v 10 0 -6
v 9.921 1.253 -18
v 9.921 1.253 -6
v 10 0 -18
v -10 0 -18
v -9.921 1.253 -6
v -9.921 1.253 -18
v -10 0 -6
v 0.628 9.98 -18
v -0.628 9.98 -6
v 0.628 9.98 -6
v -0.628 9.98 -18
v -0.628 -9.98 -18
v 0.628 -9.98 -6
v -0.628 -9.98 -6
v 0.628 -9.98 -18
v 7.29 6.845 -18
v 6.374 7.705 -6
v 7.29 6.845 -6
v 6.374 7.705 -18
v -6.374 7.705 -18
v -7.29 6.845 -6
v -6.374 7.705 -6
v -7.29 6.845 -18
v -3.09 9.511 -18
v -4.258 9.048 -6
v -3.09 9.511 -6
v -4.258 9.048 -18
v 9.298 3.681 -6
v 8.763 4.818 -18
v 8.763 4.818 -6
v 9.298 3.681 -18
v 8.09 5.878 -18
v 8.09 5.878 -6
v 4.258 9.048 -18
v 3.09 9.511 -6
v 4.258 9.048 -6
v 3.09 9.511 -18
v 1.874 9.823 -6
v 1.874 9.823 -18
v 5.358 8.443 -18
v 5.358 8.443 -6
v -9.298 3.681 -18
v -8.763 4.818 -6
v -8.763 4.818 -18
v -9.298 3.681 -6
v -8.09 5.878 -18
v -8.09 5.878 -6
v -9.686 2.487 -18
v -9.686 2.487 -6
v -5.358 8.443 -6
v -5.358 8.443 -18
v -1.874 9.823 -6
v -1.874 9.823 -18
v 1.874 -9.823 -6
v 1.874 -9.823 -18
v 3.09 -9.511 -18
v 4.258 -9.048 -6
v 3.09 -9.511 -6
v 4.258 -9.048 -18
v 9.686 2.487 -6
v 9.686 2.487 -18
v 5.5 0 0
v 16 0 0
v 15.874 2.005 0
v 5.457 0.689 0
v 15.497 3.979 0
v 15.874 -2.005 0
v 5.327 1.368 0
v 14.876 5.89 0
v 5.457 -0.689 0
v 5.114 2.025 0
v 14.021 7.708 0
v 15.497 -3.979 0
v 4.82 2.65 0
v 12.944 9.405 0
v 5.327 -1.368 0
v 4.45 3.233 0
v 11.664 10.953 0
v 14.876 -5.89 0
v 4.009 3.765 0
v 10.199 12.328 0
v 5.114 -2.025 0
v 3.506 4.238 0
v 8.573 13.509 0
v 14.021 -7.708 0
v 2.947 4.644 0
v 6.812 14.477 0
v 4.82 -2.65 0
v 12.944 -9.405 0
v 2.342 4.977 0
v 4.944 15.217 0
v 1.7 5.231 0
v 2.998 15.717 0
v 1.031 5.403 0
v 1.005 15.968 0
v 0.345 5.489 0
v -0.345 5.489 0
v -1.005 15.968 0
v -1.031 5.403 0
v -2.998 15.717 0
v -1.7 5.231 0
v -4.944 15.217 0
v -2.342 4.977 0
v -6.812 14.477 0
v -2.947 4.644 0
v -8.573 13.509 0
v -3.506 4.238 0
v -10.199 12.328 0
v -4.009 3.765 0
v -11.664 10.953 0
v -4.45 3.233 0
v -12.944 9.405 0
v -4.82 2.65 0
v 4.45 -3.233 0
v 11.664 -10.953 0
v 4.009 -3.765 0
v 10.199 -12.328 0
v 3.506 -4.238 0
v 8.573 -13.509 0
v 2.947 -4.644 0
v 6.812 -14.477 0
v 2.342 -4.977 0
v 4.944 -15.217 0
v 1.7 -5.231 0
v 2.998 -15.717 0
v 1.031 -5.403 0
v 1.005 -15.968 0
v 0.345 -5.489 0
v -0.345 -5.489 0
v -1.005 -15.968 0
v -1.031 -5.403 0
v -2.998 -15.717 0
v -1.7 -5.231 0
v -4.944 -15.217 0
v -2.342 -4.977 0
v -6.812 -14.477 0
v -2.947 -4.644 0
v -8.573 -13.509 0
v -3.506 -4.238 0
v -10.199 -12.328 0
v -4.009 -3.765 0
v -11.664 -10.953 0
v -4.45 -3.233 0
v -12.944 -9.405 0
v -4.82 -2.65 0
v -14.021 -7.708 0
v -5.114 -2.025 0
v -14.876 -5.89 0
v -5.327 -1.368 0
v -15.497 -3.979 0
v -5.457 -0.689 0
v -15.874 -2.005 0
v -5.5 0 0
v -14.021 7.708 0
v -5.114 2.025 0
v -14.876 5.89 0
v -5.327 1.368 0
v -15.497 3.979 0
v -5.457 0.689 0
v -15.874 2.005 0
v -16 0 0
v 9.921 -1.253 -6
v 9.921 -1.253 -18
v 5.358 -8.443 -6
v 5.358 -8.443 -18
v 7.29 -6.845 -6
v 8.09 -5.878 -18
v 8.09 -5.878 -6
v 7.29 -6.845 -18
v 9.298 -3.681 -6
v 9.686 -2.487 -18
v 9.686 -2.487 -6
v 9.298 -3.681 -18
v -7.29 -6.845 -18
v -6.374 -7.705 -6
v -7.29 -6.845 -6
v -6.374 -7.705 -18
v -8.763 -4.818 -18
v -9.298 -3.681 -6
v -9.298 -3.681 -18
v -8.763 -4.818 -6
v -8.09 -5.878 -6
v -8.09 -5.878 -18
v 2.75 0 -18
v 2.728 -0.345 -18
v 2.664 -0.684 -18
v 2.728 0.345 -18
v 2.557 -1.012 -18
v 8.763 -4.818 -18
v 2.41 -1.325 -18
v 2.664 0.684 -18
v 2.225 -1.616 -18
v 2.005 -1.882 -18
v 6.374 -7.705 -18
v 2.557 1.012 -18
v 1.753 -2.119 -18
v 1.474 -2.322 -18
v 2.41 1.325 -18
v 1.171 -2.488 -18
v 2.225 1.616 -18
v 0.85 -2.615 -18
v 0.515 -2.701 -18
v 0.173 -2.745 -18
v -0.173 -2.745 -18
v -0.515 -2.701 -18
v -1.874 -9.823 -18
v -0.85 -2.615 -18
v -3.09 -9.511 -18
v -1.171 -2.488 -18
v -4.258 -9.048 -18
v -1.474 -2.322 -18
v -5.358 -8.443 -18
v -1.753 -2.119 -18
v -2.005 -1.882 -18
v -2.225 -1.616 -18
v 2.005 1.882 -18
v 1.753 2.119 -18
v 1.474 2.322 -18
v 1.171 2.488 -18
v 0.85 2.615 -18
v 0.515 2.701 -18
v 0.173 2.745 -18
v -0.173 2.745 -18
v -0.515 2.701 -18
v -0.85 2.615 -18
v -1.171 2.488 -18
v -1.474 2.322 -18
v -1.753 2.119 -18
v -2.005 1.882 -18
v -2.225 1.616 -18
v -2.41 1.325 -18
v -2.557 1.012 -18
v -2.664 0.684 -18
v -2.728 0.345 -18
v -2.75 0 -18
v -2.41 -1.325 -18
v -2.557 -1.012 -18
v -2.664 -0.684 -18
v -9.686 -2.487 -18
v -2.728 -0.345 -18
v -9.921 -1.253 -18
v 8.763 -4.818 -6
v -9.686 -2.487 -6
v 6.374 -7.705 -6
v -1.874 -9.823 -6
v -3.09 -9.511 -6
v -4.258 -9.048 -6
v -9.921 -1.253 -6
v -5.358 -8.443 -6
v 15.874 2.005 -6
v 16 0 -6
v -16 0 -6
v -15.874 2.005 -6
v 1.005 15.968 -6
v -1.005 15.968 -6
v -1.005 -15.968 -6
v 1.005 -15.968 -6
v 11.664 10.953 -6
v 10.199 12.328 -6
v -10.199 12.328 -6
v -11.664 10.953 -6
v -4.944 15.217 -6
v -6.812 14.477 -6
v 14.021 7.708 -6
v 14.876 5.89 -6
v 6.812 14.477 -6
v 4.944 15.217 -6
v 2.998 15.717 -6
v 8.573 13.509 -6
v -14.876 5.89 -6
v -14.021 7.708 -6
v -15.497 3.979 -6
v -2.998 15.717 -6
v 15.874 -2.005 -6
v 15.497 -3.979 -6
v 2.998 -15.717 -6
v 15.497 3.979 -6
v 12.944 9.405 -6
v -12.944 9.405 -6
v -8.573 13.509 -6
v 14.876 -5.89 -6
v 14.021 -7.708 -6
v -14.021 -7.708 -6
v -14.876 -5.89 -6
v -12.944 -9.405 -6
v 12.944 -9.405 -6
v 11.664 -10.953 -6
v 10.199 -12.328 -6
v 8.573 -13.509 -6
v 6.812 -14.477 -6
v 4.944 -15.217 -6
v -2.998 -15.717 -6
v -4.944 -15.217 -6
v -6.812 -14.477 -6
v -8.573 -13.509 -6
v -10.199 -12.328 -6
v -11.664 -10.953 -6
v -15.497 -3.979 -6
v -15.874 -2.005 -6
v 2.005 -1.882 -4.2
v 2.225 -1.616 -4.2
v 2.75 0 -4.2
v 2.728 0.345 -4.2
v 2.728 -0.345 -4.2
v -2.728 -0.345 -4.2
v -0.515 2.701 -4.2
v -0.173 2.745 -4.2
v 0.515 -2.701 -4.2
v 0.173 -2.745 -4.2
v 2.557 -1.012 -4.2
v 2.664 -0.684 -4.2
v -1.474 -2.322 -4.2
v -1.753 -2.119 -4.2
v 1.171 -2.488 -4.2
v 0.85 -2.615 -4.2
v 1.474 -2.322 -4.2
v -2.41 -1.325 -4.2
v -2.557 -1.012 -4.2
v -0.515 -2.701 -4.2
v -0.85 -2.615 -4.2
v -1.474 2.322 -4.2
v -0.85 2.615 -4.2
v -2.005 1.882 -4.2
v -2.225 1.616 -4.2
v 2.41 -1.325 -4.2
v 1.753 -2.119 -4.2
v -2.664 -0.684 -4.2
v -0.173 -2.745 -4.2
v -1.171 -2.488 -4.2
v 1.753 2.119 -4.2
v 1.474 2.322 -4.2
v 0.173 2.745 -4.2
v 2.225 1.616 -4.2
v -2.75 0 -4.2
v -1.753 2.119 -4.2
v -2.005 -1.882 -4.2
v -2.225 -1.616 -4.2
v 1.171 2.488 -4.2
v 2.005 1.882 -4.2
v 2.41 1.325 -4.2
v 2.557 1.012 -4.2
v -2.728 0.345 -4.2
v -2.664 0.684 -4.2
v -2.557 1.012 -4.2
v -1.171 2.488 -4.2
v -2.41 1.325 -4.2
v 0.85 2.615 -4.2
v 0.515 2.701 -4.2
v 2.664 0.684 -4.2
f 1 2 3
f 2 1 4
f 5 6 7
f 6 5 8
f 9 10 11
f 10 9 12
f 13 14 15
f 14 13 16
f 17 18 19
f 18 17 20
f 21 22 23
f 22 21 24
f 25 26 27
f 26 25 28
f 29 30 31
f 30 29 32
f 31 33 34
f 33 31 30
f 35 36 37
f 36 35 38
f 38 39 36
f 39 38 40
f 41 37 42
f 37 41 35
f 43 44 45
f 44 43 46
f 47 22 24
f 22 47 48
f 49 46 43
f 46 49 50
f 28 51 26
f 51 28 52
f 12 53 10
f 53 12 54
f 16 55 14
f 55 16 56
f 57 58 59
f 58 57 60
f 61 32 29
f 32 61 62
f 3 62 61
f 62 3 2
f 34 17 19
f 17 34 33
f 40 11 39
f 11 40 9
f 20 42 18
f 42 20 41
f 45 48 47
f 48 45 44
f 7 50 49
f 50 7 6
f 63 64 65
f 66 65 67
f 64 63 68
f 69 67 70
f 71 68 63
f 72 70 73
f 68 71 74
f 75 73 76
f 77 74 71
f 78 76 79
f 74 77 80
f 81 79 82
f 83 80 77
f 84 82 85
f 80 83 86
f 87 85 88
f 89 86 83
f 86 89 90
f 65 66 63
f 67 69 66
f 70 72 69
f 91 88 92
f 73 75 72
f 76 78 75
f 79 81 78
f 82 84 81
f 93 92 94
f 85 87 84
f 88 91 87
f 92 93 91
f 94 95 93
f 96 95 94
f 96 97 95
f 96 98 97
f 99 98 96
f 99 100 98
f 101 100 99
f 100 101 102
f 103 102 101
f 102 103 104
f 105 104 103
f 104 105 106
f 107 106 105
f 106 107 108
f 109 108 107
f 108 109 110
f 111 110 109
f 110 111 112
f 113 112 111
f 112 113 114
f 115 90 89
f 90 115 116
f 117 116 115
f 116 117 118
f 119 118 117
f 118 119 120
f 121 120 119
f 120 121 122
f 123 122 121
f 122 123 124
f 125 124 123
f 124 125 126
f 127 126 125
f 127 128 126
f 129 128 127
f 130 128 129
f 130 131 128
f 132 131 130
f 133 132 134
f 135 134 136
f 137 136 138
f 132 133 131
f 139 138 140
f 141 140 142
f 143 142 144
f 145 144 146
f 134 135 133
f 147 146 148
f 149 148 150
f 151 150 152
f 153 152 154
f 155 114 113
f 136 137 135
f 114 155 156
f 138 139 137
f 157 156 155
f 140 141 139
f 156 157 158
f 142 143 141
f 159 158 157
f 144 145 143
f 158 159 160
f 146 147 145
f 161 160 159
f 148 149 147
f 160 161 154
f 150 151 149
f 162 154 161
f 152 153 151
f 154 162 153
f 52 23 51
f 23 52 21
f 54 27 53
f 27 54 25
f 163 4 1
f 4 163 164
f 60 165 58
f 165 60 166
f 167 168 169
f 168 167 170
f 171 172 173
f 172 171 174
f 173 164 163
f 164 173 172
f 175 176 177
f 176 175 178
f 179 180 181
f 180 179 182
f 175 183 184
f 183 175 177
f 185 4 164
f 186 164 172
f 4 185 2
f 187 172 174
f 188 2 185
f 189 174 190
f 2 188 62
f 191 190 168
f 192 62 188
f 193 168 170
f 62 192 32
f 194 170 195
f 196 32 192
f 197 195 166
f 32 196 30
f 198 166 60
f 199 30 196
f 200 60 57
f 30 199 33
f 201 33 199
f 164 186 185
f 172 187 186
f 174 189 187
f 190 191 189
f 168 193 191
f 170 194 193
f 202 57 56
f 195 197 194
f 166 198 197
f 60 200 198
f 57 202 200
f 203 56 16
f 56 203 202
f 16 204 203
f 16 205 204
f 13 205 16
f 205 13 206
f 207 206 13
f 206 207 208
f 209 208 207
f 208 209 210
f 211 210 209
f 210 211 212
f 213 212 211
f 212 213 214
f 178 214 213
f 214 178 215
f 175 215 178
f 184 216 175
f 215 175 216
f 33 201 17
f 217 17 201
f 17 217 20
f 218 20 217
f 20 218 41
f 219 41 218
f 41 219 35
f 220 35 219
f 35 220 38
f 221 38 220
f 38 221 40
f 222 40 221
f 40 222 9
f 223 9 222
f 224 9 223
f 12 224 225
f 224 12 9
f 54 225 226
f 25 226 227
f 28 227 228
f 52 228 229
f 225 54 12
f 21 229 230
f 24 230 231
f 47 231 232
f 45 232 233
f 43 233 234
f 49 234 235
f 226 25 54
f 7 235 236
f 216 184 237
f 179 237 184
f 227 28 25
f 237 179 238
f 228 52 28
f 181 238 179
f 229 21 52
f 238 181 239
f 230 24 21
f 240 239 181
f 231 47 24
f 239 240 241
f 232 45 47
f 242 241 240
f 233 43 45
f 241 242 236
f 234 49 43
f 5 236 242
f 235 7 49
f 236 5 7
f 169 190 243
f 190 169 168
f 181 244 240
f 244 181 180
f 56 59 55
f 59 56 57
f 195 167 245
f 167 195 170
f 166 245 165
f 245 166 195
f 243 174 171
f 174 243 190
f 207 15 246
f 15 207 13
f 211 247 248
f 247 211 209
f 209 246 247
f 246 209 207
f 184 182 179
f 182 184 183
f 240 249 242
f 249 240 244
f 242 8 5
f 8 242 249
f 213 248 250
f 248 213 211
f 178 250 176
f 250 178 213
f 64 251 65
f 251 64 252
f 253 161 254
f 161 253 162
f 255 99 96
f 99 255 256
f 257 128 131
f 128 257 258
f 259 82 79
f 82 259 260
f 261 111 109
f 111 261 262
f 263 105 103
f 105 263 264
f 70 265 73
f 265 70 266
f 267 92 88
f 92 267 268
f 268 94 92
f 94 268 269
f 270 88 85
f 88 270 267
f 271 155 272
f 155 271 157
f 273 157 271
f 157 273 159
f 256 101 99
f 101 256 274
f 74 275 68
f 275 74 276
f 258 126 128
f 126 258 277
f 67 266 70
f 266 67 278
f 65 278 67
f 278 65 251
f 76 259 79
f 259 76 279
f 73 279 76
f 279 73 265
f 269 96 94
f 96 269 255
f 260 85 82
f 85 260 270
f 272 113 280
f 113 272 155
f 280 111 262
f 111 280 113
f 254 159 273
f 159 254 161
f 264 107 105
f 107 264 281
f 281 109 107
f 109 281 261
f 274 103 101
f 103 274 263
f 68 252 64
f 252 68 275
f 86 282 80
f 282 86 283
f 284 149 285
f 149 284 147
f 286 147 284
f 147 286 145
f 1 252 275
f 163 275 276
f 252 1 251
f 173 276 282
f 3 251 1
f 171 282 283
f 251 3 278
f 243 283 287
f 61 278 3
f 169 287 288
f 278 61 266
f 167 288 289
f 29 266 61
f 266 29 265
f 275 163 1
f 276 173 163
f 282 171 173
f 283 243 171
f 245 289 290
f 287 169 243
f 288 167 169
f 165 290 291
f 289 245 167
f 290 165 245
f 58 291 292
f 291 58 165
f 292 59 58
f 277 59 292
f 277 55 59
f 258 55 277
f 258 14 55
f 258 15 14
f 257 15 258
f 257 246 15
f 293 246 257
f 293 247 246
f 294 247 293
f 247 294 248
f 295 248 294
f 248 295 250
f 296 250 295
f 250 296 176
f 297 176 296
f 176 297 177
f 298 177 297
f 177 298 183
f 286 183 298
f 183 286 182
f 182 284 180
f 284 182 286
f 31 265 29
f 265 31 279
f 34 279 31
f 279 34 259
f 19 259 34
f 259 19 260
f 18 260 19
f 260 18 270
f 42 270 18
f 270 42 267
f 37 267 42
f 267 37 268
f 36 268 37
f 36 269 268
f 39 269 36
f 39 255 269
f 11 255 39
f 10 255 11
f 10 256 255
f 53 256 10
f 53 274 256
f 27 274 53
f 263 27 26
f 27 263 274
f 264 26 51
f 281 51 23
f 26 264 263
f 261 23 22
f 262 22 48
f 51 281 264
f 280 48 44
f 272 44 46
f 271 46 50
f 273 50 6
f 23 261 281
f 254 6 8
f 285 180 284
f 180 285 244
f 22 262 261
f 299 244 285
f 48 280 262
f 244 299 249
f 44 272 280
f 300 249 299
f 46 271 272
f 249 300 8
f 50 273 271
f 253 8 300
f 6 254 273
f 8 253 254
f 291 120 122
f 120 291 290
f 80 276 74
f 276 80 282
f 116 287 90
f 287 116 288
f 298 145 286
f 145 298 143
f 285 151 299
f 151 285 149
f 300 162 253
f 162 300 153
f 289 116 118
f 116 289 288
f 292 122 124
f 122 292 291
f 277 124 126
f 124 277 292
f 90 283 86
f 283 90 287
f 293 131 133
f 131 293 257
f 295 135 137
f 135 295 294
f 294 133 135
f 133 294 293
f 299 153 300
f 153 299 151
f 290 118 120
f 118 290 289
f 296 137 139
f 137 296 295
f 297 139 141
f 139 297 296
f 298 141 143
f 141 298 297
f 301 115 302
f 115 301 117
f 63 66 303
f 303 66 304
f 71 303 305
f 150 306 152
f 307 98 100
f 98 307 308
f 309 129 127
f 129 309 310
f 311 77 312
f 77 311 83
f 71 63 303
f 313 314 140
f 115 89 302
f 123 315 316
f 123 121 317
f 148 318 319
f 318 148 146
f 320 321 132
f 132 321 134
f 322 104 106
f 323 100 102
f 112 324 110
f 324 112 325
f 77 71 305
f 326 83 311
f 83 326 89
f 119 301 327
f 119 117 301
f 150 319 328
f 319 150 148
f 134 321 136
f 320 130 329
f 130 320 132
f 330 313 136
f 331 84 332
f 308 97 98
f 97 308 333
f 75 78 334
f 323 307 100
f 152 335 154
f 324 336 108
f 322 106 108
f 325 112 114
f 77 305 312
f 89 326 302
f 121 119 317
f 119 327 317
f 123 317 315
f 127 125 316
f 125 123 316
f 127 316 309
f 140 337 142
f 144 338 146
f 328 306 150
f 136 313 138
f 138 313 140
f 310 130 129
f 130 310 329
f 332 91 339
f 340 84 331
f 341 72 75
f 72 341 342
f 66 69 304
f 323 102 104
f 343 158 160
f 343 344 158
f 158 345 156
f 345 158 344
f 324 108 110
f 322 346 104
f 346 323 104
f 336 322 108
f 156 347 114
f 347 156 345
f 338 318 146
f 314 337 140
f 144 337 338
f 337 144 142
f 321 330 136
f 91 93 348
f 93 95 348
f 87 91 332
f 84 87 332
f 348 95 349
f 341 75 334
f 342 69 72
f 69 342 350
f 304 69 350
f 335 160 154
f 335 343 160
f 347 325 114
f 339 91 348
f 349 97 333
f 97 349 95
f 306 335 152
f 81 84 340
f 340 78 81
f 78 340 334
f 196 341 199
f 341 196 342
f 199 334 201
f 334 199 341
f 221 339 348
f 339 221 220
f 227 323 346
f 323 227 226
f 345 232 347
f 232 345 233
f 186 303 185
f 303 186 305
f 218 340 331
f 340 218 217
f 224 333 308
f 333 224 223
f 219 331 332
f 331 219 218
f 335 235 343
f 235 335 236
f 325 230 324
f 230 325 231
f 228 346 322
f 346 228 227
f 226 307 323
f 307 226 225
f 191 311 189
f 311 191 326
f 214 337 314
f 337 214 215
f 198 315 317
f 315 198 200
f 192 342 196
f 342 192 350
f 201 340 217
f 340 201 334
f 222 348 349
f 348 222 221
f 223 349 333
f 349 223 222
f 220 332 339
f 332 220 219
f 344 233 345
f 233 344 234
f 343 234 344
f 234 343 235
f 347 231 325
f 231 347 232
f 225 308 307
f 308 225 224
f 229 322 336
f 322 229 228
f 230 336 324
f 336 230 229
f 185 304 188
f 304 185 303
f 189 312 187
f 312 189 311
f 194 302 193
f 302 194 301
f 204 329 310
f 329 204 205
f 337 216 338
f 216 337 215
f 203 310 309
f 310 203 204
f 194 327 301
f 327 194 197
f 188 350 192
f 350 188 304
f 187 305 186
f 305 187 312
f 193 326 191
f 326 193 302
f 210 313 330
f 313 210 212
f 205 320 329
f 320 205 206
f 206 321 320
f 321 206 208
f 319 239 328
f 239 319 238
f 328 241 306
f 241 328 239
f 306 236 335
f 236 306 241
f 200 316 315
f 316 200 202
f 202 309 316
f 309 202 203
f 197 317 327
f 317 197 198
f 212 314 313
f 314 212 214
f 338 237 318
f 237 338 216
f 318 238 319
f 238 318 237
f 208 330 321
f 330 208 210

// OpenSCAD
$fn = 50;


difference() {
	union() {
		translate(v = [0, 0, -18.0000000000]) {
			cylinder(h = 18, r = 10.0000000000);
		}
		translate(v = [0, 0, -6.0000000000]) {
			cylinder(h = 6, r = 16.0000000000);
		}
	}
	union() {
		translate(v = [0, 0, 0]) {
			rotate(a = [0, 0, 0]) {
				difference() {
					union() {
						#translate(v = [0, 0, -18.0000000000]) {
							cylinder(h = 18, r = 2.2500000000);
						}
						#translate(v = [0, 0, -4.2000000000]) {
							cylinder(h = 4.2000000000, r1 = 2.7500000000, r2 = 5.5000000000);
						}
						#translate(v = [0, 0, -18.0000000000]) {
							cylinder(h = 18, r = 2.7500000000);
						}
						#translate(v = [0, 0, -18.0000000000]) {
							cylinder(h = 18, r = 2.2500000000);
						}
					}
					union();
				}
			}
		}
	}
}
